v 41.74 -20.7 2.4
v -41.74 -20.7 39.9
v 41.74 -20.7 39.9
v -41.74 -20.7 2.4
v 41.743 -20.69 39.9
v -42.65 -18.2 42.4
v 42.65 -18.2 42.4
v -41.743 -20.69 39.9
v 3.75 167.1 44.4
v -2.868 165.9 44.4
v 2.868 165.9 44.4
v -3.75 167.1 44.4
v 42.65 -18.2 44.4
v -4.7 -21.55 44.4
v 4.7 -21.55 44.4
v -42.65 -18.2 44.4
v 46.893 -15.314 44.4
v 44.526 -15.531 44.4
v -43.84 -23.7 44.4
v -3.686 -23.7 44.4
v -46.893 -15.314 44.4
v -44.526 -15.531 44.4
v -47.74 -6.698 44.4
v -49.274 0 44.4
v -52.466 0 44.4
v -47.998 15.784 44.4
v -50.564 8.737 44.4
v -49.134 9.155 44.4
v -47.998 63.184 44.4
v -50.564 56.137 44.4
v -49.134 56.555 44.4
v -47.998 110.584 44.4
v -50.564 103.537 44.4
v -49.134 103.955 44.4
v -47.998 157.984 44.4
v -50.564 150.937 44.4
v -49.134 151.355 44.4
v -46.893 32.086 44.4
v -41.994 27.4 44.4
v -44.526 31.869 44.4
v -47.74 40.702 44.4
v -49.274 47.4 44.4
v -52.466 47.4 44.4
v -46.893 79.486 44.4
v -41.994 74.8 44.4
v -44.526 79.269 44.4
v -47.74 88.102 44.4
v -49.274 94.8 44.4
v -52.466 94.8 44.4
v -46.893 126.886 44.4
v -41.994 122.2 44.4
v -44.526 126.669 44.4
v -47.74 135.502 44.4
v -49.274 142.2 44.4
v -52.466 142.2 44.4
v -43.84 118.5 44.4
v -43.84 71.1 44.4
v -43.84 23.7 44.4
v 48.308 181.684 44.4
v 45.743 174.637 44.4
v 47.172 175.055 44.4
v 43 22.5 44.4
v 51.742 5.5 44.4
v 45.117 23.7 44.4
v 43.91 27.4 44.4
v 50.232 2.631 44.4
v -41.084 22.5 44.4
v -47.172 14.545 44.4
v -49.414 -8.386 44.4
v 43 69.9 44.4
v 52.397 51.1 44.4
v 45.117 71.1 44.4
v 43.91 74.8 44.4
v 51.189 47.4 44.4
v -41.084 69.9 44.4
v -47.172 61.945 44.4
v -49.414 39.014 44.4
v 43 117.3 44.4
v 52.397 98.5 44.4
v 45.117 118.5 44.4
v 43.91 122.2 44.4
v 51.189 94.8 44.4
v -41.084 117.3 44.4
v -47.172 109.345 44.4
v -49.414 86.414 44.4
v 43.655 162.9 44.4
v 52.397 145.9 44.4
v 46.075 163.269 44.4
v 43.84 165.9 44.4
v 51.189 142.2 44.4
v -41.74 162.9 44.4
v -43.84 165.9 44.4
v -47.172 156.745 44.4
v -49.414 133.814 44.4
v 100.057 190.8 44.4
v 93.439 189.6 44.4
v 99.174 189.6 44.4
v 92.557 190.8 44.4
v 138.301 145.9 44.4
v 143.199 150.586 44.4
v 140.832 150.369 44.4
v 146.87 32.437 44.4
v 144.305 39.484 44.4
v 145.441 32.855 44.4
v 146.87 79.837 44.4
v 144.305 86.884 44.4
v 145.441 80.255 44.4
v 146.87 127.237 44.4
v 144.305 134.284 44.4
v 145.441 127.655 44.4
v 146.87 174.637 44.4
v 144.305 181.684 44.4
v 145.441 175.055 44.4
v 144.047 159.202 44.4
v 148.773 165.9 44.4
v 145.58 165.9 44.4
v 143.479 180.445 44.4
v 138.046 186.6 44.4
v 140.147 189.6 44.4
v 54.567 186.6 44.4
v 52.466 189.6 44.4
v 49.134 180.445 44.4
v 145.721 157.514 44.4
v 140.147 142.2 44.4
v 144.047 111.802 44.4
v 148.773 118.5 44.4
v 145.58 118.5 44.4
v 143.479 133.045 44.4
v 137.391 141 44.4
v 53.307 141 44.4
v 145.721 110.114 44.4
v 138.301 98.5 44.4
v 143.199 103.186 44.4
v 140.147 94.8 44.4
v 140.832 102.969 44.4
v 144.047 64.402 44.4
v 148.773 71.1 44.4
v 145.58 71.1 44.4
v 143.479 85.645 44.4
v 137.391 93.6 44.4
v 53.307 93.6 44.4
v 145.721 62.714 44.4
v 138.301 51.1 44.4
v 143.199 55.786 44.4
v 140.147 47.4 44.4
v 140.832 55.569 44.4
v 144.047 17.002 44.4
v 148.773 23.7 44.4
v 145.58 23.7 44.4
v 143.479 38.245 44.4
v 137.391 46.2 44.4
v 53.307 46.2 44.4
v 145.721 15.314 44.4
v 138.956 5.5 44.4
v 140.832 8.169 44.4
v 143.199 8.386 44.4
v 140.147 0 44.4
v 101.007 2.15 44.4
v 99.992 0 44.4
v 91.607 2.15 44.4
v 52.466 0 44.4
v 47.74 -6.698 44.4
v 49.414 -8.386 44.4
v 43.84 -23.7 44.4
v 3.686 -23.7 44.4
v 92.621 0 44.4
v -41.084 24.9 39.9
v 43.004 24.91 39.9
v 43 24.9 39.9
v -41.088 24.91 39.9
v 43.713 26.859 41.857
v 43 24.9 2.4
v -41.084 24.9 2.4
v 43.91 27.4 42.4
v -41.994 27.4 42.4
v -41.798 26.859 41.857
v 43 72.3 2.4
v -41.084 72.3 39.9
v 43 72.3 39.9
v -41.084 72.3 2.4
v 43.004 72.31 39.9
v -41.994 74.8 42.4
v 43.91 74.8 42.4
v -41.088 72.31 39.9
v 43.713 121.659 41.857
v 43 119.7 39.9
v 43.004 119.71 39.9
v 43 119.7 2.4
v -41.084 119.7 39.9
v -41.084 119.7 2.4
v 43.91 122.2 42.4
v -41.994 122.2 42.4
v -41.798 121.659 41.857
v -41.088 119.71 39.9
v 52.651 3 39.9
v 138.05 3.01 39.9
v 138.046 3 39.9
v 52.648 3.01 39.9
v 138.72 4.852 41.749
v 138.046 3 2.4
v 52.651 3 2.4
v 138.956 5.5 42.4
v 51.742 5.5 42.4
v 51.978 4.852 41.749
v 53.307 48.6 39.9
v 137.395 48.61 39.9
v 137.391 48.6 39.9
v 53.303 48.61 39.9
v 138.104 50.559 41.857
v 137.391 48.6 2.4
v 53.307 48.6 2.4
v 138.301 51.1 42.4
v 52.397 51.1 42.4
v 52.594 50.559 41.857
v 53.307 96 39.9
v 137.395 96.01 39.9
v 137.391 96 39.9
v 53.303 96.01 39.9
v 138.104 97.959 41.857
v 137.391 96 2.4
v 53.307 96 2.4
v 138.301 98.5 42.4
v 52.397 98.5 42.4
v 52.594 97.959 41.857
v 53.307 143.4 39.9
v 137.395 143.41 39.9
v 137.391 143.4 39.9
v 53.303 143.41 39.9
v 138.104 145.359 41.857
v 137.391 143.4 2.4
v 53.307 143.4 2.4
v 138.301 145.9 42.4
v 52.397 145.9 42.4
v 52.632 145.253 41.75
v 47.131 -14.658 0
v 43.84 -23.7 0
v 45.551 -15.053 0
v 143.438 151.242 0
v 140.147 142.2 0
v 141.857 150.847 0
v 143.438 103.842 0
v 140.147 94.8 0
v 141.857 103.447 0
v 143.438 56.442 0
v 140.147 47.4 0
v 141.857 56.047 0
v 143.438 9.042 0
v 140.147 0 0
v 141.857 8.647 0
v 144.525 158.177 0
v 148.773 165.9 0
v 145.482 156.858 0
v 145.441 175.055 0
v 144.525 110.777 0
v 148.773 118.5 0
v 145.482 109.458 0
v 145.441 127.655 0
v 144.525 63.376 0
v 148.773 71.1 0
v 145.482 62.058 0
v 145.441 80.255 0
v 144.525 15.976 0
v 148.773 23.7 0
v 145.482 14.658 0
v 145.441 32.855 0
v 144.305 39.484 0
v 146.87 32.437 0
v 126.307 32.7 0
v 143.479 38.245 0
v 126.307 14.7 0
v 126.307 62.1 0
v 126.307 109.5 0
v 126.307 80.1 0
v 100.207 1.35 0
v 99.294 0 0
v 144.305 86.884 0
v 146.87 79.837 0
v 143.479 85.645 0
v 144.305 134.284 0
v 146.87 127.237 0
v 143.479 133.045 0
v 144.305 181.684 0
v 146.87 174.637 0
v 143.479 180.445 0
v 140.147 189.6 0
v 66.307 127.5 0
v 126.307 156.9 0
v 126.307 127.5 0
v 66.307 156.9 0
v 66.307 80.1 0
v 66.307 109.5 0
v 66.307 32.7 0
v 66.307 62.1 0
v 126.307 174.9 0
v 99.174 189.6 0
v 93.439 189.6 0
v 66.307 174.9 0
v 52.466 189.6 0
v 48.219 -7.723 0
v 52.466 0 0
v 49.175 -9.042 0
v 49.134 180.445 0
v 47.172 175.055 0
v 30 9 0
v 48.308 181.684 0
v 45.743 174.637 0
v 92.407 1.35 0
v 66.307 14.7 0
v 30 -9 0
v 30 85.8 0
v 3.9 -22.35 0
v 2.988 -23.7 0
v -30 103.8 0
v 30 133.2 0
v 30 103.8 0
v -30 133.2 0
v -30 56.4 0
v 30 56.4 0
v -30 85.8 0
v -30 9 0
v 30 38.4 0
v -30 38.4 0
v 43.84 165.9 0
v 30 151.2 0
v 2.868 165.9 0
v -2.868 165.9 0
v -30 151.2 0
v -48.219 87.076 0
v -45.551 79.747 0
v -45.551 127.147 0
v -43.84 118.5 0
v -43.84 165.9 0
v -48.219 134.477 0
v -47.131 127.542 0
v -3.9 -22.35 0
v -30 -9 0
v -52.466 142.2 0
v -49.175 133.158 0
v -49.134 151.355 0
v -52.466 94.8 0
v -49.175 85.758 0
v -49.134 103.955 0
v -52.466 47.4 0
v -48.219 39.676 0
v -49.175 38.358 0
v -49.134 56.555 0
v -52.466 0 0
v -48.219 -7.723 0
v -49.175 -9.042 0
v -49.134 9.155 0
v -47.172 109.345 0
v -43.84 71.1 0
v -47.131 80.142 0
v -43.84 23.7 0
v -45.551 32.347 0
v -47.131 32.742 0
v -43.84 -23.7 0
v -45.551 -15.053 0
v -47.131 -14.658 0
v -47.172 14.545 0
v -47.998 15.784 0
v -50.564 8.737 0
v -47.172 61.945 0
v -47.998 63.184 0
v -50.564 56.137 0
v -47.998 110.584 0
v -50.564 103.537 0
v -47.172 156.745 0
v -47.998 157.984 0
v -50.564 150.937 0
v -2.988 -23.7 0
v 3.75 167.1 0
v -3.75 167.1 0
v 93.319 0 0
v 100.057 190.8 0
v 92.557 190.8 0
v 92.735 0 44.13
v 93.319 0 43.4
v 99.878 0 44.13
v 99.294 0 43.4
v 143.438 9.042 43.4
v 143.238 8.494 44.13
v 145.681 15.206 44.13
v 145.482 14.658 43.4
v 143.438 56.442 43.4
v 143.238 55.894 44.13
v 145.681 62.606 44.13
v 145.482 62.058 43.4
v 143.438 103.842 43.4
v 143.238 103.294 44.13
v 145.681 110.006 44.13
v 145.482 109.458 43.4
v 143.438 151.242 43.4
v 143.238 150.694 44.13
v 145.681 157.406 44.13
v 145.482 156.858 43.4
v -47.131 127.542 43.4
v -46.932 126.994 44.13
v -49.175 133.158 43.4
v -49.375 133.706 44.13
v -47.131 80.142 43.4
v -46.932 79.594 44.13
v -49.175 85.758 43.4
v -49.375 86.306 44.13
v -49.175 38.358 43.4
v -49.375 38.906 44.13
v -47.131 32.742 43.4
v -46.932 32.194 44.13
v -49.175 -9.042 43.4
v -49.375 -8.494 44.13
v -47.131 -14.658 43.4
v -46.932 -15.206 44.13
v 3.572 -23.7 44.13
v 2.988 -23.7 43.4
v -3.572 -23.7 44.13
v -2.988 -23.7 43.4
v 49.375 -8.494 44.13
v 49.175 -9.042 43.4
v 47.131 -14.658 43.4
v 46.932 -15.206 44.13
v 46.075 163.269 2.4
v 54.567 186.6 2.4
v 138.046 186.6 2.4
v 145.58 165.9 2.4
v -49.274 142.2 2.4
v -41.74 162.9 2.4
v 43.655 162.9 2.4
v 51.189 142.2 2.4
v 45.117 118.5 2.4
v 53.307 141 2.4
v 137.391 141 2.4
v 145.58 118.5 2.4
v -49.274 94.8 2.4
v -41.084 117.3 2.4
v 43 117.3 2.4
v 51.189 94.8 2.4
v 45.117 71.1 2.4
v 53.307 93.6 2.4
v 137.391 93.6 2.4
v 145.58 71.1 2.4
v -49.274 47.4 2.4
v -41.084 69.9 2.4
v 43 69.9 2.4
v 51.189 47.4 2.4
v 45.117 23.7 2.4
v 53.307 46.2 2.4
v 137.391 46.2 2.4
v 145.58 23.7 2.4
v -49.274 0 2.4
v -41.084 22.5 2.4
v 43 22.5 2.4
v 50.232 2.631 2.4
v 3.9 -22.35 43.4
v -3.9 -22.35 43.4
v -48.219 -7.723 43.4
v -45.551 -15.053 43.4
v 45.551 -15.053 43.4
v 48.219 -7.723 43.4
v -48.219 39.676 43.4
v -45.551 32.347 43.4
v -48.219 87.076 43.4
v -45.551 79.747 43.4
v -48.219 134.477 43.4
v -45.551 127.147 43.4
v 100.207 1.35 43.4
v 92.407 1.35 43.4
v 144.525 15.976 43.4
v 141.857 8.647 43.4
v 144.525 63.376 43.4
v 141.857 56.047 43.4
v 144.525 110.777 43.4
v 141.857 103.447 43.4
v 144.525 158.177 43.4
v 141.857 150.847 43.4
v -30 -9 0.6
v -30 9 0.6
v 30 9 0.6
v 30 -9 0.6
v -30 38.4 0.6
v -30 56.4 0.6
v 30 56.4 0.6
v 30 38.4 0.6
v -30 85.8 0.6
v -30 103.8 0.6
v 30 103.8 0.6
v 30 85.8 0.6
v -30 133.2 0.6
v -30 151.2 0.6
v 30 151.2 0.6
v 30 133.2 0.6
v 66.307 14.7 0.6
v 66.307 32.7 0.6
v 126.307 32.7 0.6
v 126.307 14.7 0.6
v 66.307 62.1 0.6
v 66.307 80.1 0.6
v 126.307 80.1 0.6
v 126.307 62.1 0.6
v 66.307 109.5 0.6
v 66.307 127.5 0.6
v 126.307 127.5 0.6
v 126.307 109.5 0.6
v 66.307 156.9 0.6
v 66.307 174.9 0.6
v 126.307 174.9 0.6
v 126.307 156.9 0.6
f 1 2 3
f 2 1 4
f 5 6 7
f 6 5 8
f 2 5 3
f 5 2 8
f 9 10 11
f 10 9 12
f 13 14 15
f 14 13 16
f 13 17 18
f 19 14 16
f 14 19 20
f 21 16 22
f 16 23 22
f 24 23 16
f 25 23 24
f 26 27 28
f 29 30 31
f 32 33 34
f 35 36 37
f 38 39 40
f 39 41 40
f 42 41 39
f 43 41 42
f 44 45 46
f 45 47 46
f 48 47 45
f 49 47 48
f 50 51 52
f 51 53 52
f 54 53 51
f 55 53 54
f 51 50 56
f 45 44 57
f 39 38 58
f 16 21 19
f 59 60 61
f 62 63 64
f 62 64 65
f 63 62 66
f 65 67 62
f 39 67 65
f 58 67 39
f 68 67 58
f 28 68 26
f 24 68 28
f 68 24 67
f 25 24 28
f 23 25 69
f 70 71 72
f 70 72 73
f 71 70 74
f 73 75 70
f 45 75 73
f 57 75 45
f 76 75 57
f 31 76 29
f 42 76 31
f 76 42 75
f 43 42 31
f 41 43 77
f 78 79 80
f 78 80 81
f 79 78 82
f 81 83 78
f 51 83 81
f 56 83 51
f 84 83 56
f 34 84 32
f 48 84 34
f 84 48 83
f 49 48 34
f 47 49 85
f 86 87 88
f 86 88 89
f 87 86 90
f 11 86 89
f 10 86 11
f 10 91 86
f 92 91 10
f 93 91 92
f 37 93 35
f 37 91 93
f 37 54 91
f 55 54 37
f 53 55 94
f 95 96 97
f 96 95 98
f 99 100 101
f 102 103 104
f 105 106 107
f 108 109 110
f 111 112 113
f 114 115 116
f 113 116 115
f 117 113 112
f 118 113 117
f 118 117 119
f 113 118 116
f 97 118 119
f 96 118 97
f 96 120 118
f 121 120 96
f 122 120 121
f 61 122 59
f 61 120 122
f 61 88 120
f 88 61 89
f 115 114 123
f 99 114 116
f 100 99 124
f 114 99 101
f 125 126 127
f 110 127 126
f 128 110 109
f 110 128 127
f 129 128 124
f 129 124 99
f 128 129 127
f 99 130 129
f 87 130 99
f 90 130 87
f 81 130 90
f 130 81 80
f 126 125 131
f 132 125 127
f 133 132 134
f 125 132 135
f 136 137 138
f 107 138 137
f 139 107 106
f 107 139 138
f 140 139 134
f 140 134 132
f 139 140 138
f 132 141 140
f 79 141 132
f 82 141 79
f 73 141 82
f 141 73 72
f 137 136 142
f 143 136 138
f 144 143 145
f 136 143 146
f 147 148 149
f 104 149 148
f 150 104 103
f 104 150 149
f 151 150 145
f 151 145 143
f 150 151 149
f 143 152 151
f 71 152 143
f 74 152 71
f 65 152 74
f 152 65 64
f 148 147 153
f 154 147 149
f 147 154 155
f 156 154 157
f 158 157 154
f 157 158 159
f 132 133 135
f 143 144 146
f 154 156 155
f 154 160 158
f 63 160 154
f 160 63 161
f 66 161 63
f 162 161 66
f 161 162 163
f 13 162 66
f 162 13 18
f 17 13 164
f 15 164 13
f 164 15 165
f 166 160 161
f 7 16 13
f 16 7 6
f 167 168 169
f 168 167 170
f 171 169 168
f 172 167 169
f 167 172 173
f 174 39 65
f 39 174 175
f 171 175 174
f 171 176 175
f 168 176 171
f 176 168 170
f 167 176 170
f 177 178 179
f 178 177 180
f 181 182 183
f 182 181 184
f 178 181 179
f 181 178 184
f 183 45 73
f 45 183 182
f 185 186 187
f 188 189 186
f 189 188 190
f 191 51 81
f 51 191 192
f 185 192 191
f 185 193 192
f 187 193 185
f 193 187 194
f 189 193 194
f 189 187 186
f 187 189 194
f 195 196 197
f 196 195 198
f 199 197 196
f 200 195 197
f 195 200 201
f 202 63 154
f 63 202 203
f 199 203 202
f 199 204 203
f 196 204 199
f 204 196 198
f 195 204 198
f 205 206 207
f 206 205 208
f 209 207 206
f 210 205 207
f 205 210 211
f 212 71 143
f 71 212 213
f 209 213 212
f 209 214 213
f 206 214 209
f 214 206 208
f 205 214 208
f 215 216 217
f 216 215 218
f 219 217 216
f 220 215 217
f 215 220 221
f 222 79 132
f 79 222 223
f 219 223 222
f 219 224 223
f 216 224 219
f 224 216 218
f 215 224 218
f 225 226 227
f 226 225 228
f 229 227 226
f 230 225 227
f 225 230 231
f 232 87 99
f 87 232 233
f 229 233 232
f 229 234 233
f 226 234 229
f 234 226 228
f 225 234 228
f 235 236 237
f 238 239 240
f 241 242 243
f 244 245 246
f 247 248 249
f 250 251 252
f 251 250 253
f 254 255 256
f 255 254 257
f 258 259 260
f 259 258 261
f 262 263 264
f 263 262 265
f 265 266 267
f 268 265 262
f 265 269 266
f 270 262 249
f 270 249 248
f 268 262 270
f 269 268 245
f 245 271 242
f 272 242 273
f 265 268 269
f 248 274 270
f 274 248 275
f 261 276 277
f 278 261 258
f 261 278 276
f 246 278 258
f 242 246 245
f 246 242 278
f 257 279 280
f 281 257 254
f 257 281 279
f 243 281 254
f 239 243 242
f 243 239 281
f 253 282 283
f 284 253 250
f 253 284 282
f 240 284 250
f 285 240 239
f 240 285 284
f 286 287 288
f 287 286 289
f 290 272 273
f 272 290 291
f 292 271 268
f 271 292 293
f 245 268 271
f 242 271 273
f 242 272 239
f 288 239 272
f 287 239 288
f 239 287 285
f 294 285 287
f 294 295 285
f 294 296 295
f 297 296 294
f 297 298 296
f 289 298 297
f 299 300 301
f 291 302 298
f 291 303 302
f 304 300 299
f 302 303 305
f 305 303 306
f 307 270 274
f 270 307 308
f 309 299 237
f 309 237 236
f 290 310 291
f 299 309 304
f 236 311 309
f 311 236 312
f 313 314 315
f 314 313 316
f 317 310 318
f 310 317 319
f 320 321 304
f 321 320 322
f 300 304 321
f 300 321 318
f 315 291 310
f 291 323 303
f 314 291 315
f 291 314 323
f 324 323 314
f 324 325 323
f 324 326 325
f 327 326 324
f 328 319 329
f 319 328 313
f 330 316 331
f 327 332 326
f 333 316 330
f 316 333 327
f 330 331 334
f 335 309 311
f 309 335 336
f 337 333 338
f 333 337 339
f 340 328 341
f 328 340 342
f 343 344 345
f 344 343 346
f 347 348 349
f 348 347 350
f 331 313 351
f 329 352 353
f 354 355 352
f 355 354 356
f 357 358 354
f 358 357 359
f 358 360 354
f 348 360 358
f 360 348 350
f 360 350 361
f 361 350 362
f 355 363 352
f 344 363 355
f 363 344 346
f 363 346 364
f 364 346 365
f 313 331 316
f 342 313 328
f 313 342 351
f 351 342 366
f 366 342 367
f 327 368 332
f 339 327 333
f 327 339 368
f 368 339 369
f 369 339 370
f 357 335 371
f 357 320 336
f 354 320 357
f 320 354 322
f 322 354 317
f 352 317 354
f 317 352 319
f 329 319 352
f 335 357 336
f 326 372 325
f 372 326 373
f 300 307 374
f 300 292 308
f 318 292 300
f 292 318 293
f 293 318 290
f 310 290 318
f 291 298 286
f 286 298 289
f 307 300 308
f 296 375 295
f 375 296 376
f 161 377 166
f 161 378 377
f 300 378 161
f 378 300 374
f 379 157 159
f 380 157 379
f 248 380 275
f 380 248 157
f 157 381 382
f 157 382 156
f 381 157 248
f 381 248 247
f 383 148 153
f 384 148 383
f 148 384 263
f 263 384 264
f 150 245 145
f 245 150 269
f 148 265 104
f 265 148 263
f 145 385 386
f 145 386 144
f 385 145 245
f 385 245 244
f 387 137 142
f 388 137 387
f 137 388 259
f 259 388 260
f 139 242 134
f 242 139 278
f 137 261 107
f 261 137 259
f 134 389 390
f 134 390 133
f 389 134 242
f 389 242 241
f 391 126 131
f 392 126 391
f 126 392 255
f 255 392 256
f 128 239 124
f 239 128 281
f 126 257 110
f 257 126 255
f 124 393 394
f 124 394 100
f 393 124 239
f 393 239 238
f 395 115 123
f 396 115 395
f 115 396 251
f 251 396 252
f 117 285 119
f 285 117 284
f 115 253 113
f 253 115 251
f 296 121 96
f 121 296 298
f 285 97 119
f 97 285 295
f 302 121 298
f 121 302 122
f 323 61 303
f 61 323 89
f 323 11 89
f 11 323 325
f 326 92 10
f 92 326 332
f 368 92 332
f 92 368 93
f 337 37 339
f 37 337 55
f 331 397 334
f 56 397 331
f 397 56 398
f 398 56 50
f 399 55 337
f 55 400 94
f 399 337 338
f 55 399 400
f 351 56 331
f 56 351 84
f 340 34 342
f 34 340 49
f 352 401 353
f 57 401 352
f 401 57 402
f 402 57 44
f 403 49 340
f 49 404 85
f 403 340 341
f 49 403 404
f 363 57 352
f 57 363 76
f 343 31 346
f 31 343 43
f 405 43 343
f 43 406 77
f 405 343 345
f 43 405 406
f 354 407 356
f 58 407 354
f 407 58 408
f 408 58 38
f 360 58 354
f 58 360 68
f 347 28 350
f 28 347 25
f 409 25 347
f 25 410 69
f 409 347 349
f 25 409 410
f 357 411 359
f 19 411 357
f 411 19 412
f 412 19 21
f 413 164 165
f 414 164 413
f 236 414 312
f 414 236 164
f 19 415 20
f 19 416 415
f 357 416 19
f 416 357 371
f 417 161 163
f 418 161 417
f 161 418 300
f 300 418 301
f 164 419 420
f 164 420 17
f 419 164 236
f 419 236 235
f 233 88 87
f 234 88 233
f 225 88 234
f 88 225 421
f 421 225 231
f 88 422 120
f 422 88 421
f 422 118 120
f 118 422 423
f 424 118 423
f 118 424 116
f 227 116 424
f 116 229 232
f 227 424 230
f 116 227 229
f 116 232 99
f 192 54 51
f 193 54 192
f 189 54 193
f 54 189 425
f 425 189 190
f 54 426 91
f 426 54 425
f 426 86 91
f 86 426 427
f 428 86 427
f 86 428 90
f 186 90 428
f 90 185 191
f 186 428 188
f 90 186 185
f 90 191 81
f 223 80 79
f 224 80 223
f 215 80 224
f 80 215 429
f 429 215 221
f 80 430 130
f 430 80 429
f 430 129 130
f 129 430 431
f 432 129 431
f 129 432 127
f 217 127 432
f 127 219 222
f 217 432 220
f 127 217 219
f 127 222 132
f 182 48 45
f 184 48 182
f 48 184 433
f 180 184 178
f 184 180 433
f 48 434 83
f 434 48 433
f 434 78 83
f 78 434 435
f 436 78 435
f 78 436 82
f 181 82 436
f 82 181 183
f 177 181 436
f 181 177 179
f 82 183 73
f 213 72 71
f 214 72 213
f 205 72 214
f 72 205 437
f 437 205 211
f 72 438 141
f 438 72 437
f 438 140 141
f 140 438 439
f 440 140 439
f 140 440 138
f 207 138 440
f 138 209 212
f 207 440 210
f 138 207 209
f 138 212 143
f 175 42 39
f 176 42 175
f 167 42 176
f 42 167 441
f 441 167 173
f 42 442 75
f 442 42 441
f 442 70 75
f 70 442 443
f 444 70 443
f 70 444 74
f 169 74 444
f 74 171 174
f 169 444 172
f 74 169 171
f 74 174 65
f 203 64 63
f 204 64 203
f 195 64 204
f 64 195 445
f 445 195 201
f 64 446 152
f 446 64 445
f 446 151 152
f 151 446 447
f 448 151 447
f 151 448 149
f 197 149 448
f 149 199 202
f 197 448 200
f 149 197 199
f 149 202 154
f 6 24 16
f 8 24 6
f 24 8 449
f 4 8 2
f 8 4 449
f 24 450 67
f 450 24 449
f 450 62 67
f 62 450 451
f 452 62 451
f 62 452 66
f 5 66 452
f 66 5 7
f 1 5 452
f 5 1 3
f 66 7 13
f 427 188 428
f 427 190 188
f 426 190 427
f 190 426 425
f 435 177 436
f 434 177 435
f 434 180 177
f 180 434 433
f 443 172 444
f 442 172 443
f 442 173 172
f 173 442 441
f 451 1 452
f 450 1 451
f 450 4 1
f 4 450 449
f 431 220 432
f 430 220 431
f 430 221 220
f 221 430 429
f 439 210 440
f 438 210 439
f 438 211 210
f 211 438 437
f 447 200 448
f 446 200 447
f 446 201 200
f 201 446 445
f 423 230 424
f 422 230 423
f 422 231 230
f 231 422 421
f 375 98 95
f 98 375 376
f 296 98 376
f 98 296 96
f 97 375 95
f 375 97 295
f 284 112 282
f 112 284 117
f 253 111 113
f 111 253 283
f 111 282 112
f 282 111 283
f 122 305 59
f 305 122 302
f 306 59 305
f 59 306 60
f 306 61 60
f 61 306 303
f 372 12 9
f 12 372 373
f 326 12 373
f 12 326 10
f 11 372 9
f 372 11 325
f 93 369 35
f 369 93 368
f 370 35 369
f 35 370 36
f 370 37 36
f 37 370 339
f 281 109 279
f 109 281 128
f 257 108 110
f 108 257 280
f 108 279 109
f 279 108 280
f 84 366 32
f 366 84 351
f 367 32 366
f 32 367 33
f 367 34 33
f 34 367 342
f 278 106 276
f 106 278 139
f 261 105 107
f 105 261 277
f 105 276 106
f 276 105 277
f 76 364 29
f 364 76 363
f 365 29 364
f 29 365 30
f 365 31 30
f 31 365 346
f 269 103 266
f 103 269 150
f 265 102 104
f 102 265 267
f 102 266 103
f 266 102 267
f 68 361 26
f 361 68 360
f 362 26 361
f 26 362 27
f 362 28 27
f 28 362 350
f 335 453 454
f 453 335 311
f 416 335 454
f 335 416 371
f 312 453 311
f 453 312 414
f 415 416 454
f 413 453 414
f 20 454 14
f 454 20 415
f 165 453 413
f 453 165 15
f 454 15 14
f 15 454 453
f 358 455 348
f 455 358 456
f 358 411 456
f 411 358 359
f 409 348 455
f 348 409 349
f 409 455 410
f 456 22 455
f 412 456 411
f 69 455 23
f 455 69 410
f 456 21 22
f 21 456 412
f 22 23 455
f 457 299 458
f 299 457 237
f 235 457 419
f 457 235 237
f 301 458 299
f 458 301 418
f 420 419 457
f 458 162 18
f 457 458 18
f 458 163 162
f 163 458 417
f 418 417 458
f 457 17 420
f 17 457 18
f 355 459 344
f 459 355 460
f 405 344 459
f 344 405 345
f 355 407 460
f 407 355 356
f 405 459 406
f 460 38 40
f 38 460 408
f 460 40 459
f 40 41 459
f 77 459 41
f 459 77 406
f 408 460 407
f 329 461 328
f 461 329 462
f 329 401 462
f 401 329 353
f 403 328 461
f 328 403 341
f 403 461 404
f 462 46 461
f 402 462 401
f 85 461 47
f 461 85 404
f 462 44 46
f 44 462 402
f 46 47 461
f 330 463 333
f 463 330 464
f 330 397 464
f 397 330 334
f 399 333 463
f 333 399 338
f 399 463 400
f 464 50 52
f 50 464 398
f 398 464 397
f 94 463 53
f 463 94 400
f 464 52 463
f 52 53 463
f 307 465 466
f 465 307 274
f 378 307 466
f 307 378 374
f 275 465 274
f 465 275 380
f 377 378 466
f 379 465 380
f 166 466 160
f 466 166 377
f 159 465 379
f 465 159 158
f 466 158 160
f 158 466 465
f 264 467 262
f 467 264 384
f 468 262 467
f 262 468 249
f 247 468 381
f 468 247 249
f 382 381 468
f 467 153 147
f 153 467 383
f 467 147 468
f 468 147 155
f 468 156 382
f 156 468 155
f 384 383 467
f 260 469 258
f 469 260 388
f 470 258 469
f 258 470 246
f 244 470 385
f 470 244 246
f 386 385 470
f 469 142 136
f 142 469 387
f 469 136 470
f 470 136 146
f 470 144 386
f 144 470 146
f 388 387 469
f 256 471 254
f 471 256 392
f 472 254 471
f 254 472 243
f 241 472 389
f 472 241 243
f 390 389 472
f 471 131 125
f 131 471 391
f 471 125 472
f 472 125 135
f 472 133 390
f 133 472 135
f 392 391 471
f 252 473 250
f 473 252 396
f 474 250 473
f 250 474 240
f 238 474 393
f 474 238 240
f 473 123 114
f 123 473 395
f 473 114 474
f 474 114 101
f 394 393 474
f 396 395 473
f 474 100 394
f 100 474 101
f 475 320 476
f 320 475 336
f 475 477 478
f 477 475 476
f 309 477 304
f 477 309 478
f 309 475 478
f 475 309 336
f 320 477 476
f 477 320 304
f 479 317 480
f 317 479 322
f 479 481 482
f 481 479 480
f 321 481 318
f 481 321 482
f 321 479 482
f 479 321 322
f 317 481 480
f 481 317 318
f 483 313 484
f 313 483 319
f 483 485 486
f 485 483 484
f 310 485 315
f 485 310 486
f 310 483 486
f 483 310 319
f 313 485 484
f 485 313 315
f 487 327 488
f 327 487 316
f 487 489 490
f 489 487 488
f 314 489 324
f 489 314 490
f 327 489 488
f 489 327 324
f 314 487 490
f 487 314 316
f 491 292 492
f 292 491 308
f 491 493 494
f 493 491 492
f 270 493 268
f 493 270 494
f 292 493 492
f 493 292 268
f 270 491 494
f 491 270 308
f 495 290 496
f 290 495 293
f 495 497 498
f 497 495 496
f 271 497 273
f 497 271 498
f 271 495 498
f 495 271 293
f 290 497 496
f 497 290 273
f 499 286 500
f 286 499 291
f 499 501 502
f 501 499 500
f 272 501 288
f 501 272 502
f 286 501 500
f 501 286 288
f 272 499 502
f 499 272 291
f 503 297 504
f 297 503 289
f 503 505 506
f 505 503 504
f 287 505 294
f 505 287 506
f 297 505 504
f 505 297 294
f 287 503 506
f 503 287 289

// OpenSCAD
// hotwheels-colmeia-01.scad
// Modular honeycomb wall rack for 1:64 Hot Wheels / Matchbox cars. ONE print
// = one panel of 8 cells (2 columns x 4, the second column offset half a
// cell), sized to fill the AD5X 220 x 220 bed. Cells share their inner walls.
//
// Each cell is a SQUASHED hexagon: long flat floor and roof (the car's length)
// and short steep sides, so little space is wasted. The car sits sideways
// (profile showing) on the floor, behind a small front lip.
//
// Panels tile like the cells do: put the next panel above (+4 rows), beside
// (+2 columns) or diagonally. Dovetail rails run front-to-back on the panel's
// outer edges: male on faces that look up / up-left / up-right, grooves on
// the faces that look down. To add a panel, line it up with one already on
// the wall and slide it straight in until the tape touches. The back has a
// shallow recess behind each cell for double-sided foam tape.
//
// Edge walls are thicker (wall_edge) to hold the grooves; they grow inward,
// so the cell pitch stays the same across panels.
//
// Car envelope (mainline 1:64): up to ~80 long, ~35 wide, ~40 tall.
//
// Print: back on the bed, no supports. It is a big flat part: use a brim.
// Export:
//   "C:/Program Files/OpenSCAD/openscad.com" -o <abs>/hotwheels-colmeia-01.stl <abs>/hotwheels-colmeia-01.scad

part = "panel"; // "panel" | "wall" (4 panels with cars, preview)

/* [Car] */
car_l = 80;
car_w = 35;
car_h = 40;

/* [Cell] */
in_floor = 86;      // inner floor / roof length
in_h     = 45;      // inner height (cells on a panel edge lose wall_edge - wall/2)
side_a   = 70;      // side slope, degrees from horizontal
wall     = 2.4;     // shared inner walls
wall_edge = 3.0;    // panel edge walls (hold the dovetail grooves)
back_t   = 2.4;
in_depth = 42;      // back plate to the front
lip_h    = 2.5;     // front lip on each floor
lip_d    = 2.0;

/* [Panel] */
cols = 2;
rows = 4;

/* [Dovetail rails] */
dt_neck = 5;
dt_head = 7.5;
dt_d    = 1.2;
dt_tol  = 0.15;     // per side

/* [Tape recess, one per cell] */
tape_w = 60;
tape_h = 18;
tape_d = 0.6;       // foam tape ~1 mm: stands 0.4 mm proud and gets pressed

$fn = 32;

// ---------------------------------------------------------------------
depth = back_t + in_depth;
t = tan(side_a);

// Cell outline on the wall centrelines: half floor b, half height h, point a.
hc = in_h / 2 + wall / 2;
ac = in_floor / 2 + (in_h / 2) / t + (wall / 2) / sin(side_a);
bc = ac - hc / t;
function hexpts(a, b, h) = [[b, h], [-b, h], [-a, 0], [-b, -h], [b, -h], [a, 0]];
cpts = hexpts(ac, bc, hc);

// faces as vertex index pairs
ROOF = [0, 1]; UR = [5, 0]; UL = [1, 2];     // "upper": male rails
FLOOR = [3, 4]; LL = [2, 3]; LR = [4, 5];    // "lower": grooves
faces = [ROOF, UR, UL, FLOOR, LL, LR];
function mid(f) = (cpts[f[0]] + cpts[f[1]]) / 2;
function nrm(f) = let(d = cpts[f[1]] - cpts[f[0]]) [d[1], -d[0]] / norm(d);
function nbv(f) = cpts[f[0]] + cpts[f[1]];   // centre offset of the neighbour across f

col_pitch = ac + bc;
row_pitch = 2 * hc;
cells = [for (c = [0 : cols - 1]) for (r = [0 : rows - 1])
            [c * col_pitch, r * row_pitch + (c % 2) * hc]];
function in_panel(p) = len([for (q = cells) if (norm(q - p) < 0.01) 1]) > 0;
function boundary(cell, i) = !in_panel(cell + nbv(faces[i]));

echo(str("hotwheels-colmeia-01: panel of ", len(cells), " cells | cell pitch ",
         col_pitch, " x ", row_pitch, " | panel repeats every ",
         cols * col_pitch, " (x) / ", rows * row_pitch, " (y)"));
assert(in_floor >= car_l + 4, "floor shorter than the car");
assert(in_h - (wall_edge - wall / 2) >= car_h + 2, "edge cells too low for the car");
assert(in_depth >= car_w + 4, "too shallow for the car");
assert(wall_edge - dt_d - dt_tol >= 1.2, "groove leaves the edge wall too thin");

module cell_outline() { polygon(cpts); }
module panel_outline() { for (p = cells) translate(p) cell_outline(); }

// Inner pocket of a cell: wall/2 off shared faces, wall_edge off panel edges.
module pocket(p) {
    intersection() {
        translate(p) offset(delta = -wall / 2) cell_outline();
        offset(delta = -wall_edge) panel_outline();
    }
}

// Dovetail at face f of the cell at p: rail outward, or groove into the wall.
module dovetail(p, f, grow = 0, into = false) {
    n = nrm(f);
    translate(p + mid(f)) rotate(atan2(n[1], n[0]) + (into ? 180 : 0))
        polygon([
            [-0.5,        -dt_neck / 2 - grow],
            [dt_d + grow, -dt_head / 2 - grow],
            [dt_d + grow,  dt_head / 2 + grow],
            [-0.5,         dt_neck / 2 + grow]
        ]);
}

module lip(p) {
    floor_y = p[1] - hc + (boundary(p, 3) ? wall_edge : wall / 2);
    hull() {
        translate([0, 0, depth - lip_d - lip_h]) linear_extrude(0.01)
            intersection() { pocket(p); translate([p[0] - ac, floor_y - 1]) square([2 * ac, 1.01]); }
        translate([0, 0, depth - lip_d]) linear_extrude(lip_d)
            intersection() { pocket(p); translate([p[0] - ac, floor_y - 1]) square([2 * ac, lip_h + 1]); }
    }
}

module panel() {
    difference() {
        union() {
            linear_extrude(depth) difference() {
                panel_outline();
                for (p = cells) pocket(p);
            }
            linear_extrude(back_t) panel_outline();
            for (p = cells) lip(p);
            linear_extrude(depth)
                for (p = cells) for (i = [0 : 2]) if (boundary(p, i)) dovetail(p, faces[i]);
        }
        for (p = cells) for (i = [3 : 5]) if (boundary(p, i)) {
            translate([0, 0, -1]) linear_extrude(depth + 2) dovetail(p, faces[i], dt_tol, true);
            hull() {   // lead-in at the front
                translate([0, 0, depth - 1]) linear_extrude(0.01) dovetail(p, faces[i], dt_tol, true);
                translate([0, 0, depth]) linear_extrude(0.01) dovetail(p, faces[i], dt_tol + 0.8, true);
            }
        }
        for (p = cells) translate([p[0] - tape_w / 2, p[1] - tape_h / 2, -1])
            cube([tape_w, tape_h, tape_d + 1]);
    }
}

module car_ghost(p) {
    floor_y = p[1] - hc + (boundary(p, 3) ? wall_edge : wall / 2);
    translate([p[0] - car_l / 2, floor_y, back_t + (in_depth - car_w) / 2]) cube([car_l, car_h, car_w]);
}

module wall_preview() {
    for (o = [[0, 0], [cols * col_pitch, 0], [0, rows * row_pitch], [cols * col_pitch, rows * row_pitch]])
        translate(o) { panel(); for (p = cells) %car_ghost(p); }
}

if (part == "wall") wall_preview();
else panel();
